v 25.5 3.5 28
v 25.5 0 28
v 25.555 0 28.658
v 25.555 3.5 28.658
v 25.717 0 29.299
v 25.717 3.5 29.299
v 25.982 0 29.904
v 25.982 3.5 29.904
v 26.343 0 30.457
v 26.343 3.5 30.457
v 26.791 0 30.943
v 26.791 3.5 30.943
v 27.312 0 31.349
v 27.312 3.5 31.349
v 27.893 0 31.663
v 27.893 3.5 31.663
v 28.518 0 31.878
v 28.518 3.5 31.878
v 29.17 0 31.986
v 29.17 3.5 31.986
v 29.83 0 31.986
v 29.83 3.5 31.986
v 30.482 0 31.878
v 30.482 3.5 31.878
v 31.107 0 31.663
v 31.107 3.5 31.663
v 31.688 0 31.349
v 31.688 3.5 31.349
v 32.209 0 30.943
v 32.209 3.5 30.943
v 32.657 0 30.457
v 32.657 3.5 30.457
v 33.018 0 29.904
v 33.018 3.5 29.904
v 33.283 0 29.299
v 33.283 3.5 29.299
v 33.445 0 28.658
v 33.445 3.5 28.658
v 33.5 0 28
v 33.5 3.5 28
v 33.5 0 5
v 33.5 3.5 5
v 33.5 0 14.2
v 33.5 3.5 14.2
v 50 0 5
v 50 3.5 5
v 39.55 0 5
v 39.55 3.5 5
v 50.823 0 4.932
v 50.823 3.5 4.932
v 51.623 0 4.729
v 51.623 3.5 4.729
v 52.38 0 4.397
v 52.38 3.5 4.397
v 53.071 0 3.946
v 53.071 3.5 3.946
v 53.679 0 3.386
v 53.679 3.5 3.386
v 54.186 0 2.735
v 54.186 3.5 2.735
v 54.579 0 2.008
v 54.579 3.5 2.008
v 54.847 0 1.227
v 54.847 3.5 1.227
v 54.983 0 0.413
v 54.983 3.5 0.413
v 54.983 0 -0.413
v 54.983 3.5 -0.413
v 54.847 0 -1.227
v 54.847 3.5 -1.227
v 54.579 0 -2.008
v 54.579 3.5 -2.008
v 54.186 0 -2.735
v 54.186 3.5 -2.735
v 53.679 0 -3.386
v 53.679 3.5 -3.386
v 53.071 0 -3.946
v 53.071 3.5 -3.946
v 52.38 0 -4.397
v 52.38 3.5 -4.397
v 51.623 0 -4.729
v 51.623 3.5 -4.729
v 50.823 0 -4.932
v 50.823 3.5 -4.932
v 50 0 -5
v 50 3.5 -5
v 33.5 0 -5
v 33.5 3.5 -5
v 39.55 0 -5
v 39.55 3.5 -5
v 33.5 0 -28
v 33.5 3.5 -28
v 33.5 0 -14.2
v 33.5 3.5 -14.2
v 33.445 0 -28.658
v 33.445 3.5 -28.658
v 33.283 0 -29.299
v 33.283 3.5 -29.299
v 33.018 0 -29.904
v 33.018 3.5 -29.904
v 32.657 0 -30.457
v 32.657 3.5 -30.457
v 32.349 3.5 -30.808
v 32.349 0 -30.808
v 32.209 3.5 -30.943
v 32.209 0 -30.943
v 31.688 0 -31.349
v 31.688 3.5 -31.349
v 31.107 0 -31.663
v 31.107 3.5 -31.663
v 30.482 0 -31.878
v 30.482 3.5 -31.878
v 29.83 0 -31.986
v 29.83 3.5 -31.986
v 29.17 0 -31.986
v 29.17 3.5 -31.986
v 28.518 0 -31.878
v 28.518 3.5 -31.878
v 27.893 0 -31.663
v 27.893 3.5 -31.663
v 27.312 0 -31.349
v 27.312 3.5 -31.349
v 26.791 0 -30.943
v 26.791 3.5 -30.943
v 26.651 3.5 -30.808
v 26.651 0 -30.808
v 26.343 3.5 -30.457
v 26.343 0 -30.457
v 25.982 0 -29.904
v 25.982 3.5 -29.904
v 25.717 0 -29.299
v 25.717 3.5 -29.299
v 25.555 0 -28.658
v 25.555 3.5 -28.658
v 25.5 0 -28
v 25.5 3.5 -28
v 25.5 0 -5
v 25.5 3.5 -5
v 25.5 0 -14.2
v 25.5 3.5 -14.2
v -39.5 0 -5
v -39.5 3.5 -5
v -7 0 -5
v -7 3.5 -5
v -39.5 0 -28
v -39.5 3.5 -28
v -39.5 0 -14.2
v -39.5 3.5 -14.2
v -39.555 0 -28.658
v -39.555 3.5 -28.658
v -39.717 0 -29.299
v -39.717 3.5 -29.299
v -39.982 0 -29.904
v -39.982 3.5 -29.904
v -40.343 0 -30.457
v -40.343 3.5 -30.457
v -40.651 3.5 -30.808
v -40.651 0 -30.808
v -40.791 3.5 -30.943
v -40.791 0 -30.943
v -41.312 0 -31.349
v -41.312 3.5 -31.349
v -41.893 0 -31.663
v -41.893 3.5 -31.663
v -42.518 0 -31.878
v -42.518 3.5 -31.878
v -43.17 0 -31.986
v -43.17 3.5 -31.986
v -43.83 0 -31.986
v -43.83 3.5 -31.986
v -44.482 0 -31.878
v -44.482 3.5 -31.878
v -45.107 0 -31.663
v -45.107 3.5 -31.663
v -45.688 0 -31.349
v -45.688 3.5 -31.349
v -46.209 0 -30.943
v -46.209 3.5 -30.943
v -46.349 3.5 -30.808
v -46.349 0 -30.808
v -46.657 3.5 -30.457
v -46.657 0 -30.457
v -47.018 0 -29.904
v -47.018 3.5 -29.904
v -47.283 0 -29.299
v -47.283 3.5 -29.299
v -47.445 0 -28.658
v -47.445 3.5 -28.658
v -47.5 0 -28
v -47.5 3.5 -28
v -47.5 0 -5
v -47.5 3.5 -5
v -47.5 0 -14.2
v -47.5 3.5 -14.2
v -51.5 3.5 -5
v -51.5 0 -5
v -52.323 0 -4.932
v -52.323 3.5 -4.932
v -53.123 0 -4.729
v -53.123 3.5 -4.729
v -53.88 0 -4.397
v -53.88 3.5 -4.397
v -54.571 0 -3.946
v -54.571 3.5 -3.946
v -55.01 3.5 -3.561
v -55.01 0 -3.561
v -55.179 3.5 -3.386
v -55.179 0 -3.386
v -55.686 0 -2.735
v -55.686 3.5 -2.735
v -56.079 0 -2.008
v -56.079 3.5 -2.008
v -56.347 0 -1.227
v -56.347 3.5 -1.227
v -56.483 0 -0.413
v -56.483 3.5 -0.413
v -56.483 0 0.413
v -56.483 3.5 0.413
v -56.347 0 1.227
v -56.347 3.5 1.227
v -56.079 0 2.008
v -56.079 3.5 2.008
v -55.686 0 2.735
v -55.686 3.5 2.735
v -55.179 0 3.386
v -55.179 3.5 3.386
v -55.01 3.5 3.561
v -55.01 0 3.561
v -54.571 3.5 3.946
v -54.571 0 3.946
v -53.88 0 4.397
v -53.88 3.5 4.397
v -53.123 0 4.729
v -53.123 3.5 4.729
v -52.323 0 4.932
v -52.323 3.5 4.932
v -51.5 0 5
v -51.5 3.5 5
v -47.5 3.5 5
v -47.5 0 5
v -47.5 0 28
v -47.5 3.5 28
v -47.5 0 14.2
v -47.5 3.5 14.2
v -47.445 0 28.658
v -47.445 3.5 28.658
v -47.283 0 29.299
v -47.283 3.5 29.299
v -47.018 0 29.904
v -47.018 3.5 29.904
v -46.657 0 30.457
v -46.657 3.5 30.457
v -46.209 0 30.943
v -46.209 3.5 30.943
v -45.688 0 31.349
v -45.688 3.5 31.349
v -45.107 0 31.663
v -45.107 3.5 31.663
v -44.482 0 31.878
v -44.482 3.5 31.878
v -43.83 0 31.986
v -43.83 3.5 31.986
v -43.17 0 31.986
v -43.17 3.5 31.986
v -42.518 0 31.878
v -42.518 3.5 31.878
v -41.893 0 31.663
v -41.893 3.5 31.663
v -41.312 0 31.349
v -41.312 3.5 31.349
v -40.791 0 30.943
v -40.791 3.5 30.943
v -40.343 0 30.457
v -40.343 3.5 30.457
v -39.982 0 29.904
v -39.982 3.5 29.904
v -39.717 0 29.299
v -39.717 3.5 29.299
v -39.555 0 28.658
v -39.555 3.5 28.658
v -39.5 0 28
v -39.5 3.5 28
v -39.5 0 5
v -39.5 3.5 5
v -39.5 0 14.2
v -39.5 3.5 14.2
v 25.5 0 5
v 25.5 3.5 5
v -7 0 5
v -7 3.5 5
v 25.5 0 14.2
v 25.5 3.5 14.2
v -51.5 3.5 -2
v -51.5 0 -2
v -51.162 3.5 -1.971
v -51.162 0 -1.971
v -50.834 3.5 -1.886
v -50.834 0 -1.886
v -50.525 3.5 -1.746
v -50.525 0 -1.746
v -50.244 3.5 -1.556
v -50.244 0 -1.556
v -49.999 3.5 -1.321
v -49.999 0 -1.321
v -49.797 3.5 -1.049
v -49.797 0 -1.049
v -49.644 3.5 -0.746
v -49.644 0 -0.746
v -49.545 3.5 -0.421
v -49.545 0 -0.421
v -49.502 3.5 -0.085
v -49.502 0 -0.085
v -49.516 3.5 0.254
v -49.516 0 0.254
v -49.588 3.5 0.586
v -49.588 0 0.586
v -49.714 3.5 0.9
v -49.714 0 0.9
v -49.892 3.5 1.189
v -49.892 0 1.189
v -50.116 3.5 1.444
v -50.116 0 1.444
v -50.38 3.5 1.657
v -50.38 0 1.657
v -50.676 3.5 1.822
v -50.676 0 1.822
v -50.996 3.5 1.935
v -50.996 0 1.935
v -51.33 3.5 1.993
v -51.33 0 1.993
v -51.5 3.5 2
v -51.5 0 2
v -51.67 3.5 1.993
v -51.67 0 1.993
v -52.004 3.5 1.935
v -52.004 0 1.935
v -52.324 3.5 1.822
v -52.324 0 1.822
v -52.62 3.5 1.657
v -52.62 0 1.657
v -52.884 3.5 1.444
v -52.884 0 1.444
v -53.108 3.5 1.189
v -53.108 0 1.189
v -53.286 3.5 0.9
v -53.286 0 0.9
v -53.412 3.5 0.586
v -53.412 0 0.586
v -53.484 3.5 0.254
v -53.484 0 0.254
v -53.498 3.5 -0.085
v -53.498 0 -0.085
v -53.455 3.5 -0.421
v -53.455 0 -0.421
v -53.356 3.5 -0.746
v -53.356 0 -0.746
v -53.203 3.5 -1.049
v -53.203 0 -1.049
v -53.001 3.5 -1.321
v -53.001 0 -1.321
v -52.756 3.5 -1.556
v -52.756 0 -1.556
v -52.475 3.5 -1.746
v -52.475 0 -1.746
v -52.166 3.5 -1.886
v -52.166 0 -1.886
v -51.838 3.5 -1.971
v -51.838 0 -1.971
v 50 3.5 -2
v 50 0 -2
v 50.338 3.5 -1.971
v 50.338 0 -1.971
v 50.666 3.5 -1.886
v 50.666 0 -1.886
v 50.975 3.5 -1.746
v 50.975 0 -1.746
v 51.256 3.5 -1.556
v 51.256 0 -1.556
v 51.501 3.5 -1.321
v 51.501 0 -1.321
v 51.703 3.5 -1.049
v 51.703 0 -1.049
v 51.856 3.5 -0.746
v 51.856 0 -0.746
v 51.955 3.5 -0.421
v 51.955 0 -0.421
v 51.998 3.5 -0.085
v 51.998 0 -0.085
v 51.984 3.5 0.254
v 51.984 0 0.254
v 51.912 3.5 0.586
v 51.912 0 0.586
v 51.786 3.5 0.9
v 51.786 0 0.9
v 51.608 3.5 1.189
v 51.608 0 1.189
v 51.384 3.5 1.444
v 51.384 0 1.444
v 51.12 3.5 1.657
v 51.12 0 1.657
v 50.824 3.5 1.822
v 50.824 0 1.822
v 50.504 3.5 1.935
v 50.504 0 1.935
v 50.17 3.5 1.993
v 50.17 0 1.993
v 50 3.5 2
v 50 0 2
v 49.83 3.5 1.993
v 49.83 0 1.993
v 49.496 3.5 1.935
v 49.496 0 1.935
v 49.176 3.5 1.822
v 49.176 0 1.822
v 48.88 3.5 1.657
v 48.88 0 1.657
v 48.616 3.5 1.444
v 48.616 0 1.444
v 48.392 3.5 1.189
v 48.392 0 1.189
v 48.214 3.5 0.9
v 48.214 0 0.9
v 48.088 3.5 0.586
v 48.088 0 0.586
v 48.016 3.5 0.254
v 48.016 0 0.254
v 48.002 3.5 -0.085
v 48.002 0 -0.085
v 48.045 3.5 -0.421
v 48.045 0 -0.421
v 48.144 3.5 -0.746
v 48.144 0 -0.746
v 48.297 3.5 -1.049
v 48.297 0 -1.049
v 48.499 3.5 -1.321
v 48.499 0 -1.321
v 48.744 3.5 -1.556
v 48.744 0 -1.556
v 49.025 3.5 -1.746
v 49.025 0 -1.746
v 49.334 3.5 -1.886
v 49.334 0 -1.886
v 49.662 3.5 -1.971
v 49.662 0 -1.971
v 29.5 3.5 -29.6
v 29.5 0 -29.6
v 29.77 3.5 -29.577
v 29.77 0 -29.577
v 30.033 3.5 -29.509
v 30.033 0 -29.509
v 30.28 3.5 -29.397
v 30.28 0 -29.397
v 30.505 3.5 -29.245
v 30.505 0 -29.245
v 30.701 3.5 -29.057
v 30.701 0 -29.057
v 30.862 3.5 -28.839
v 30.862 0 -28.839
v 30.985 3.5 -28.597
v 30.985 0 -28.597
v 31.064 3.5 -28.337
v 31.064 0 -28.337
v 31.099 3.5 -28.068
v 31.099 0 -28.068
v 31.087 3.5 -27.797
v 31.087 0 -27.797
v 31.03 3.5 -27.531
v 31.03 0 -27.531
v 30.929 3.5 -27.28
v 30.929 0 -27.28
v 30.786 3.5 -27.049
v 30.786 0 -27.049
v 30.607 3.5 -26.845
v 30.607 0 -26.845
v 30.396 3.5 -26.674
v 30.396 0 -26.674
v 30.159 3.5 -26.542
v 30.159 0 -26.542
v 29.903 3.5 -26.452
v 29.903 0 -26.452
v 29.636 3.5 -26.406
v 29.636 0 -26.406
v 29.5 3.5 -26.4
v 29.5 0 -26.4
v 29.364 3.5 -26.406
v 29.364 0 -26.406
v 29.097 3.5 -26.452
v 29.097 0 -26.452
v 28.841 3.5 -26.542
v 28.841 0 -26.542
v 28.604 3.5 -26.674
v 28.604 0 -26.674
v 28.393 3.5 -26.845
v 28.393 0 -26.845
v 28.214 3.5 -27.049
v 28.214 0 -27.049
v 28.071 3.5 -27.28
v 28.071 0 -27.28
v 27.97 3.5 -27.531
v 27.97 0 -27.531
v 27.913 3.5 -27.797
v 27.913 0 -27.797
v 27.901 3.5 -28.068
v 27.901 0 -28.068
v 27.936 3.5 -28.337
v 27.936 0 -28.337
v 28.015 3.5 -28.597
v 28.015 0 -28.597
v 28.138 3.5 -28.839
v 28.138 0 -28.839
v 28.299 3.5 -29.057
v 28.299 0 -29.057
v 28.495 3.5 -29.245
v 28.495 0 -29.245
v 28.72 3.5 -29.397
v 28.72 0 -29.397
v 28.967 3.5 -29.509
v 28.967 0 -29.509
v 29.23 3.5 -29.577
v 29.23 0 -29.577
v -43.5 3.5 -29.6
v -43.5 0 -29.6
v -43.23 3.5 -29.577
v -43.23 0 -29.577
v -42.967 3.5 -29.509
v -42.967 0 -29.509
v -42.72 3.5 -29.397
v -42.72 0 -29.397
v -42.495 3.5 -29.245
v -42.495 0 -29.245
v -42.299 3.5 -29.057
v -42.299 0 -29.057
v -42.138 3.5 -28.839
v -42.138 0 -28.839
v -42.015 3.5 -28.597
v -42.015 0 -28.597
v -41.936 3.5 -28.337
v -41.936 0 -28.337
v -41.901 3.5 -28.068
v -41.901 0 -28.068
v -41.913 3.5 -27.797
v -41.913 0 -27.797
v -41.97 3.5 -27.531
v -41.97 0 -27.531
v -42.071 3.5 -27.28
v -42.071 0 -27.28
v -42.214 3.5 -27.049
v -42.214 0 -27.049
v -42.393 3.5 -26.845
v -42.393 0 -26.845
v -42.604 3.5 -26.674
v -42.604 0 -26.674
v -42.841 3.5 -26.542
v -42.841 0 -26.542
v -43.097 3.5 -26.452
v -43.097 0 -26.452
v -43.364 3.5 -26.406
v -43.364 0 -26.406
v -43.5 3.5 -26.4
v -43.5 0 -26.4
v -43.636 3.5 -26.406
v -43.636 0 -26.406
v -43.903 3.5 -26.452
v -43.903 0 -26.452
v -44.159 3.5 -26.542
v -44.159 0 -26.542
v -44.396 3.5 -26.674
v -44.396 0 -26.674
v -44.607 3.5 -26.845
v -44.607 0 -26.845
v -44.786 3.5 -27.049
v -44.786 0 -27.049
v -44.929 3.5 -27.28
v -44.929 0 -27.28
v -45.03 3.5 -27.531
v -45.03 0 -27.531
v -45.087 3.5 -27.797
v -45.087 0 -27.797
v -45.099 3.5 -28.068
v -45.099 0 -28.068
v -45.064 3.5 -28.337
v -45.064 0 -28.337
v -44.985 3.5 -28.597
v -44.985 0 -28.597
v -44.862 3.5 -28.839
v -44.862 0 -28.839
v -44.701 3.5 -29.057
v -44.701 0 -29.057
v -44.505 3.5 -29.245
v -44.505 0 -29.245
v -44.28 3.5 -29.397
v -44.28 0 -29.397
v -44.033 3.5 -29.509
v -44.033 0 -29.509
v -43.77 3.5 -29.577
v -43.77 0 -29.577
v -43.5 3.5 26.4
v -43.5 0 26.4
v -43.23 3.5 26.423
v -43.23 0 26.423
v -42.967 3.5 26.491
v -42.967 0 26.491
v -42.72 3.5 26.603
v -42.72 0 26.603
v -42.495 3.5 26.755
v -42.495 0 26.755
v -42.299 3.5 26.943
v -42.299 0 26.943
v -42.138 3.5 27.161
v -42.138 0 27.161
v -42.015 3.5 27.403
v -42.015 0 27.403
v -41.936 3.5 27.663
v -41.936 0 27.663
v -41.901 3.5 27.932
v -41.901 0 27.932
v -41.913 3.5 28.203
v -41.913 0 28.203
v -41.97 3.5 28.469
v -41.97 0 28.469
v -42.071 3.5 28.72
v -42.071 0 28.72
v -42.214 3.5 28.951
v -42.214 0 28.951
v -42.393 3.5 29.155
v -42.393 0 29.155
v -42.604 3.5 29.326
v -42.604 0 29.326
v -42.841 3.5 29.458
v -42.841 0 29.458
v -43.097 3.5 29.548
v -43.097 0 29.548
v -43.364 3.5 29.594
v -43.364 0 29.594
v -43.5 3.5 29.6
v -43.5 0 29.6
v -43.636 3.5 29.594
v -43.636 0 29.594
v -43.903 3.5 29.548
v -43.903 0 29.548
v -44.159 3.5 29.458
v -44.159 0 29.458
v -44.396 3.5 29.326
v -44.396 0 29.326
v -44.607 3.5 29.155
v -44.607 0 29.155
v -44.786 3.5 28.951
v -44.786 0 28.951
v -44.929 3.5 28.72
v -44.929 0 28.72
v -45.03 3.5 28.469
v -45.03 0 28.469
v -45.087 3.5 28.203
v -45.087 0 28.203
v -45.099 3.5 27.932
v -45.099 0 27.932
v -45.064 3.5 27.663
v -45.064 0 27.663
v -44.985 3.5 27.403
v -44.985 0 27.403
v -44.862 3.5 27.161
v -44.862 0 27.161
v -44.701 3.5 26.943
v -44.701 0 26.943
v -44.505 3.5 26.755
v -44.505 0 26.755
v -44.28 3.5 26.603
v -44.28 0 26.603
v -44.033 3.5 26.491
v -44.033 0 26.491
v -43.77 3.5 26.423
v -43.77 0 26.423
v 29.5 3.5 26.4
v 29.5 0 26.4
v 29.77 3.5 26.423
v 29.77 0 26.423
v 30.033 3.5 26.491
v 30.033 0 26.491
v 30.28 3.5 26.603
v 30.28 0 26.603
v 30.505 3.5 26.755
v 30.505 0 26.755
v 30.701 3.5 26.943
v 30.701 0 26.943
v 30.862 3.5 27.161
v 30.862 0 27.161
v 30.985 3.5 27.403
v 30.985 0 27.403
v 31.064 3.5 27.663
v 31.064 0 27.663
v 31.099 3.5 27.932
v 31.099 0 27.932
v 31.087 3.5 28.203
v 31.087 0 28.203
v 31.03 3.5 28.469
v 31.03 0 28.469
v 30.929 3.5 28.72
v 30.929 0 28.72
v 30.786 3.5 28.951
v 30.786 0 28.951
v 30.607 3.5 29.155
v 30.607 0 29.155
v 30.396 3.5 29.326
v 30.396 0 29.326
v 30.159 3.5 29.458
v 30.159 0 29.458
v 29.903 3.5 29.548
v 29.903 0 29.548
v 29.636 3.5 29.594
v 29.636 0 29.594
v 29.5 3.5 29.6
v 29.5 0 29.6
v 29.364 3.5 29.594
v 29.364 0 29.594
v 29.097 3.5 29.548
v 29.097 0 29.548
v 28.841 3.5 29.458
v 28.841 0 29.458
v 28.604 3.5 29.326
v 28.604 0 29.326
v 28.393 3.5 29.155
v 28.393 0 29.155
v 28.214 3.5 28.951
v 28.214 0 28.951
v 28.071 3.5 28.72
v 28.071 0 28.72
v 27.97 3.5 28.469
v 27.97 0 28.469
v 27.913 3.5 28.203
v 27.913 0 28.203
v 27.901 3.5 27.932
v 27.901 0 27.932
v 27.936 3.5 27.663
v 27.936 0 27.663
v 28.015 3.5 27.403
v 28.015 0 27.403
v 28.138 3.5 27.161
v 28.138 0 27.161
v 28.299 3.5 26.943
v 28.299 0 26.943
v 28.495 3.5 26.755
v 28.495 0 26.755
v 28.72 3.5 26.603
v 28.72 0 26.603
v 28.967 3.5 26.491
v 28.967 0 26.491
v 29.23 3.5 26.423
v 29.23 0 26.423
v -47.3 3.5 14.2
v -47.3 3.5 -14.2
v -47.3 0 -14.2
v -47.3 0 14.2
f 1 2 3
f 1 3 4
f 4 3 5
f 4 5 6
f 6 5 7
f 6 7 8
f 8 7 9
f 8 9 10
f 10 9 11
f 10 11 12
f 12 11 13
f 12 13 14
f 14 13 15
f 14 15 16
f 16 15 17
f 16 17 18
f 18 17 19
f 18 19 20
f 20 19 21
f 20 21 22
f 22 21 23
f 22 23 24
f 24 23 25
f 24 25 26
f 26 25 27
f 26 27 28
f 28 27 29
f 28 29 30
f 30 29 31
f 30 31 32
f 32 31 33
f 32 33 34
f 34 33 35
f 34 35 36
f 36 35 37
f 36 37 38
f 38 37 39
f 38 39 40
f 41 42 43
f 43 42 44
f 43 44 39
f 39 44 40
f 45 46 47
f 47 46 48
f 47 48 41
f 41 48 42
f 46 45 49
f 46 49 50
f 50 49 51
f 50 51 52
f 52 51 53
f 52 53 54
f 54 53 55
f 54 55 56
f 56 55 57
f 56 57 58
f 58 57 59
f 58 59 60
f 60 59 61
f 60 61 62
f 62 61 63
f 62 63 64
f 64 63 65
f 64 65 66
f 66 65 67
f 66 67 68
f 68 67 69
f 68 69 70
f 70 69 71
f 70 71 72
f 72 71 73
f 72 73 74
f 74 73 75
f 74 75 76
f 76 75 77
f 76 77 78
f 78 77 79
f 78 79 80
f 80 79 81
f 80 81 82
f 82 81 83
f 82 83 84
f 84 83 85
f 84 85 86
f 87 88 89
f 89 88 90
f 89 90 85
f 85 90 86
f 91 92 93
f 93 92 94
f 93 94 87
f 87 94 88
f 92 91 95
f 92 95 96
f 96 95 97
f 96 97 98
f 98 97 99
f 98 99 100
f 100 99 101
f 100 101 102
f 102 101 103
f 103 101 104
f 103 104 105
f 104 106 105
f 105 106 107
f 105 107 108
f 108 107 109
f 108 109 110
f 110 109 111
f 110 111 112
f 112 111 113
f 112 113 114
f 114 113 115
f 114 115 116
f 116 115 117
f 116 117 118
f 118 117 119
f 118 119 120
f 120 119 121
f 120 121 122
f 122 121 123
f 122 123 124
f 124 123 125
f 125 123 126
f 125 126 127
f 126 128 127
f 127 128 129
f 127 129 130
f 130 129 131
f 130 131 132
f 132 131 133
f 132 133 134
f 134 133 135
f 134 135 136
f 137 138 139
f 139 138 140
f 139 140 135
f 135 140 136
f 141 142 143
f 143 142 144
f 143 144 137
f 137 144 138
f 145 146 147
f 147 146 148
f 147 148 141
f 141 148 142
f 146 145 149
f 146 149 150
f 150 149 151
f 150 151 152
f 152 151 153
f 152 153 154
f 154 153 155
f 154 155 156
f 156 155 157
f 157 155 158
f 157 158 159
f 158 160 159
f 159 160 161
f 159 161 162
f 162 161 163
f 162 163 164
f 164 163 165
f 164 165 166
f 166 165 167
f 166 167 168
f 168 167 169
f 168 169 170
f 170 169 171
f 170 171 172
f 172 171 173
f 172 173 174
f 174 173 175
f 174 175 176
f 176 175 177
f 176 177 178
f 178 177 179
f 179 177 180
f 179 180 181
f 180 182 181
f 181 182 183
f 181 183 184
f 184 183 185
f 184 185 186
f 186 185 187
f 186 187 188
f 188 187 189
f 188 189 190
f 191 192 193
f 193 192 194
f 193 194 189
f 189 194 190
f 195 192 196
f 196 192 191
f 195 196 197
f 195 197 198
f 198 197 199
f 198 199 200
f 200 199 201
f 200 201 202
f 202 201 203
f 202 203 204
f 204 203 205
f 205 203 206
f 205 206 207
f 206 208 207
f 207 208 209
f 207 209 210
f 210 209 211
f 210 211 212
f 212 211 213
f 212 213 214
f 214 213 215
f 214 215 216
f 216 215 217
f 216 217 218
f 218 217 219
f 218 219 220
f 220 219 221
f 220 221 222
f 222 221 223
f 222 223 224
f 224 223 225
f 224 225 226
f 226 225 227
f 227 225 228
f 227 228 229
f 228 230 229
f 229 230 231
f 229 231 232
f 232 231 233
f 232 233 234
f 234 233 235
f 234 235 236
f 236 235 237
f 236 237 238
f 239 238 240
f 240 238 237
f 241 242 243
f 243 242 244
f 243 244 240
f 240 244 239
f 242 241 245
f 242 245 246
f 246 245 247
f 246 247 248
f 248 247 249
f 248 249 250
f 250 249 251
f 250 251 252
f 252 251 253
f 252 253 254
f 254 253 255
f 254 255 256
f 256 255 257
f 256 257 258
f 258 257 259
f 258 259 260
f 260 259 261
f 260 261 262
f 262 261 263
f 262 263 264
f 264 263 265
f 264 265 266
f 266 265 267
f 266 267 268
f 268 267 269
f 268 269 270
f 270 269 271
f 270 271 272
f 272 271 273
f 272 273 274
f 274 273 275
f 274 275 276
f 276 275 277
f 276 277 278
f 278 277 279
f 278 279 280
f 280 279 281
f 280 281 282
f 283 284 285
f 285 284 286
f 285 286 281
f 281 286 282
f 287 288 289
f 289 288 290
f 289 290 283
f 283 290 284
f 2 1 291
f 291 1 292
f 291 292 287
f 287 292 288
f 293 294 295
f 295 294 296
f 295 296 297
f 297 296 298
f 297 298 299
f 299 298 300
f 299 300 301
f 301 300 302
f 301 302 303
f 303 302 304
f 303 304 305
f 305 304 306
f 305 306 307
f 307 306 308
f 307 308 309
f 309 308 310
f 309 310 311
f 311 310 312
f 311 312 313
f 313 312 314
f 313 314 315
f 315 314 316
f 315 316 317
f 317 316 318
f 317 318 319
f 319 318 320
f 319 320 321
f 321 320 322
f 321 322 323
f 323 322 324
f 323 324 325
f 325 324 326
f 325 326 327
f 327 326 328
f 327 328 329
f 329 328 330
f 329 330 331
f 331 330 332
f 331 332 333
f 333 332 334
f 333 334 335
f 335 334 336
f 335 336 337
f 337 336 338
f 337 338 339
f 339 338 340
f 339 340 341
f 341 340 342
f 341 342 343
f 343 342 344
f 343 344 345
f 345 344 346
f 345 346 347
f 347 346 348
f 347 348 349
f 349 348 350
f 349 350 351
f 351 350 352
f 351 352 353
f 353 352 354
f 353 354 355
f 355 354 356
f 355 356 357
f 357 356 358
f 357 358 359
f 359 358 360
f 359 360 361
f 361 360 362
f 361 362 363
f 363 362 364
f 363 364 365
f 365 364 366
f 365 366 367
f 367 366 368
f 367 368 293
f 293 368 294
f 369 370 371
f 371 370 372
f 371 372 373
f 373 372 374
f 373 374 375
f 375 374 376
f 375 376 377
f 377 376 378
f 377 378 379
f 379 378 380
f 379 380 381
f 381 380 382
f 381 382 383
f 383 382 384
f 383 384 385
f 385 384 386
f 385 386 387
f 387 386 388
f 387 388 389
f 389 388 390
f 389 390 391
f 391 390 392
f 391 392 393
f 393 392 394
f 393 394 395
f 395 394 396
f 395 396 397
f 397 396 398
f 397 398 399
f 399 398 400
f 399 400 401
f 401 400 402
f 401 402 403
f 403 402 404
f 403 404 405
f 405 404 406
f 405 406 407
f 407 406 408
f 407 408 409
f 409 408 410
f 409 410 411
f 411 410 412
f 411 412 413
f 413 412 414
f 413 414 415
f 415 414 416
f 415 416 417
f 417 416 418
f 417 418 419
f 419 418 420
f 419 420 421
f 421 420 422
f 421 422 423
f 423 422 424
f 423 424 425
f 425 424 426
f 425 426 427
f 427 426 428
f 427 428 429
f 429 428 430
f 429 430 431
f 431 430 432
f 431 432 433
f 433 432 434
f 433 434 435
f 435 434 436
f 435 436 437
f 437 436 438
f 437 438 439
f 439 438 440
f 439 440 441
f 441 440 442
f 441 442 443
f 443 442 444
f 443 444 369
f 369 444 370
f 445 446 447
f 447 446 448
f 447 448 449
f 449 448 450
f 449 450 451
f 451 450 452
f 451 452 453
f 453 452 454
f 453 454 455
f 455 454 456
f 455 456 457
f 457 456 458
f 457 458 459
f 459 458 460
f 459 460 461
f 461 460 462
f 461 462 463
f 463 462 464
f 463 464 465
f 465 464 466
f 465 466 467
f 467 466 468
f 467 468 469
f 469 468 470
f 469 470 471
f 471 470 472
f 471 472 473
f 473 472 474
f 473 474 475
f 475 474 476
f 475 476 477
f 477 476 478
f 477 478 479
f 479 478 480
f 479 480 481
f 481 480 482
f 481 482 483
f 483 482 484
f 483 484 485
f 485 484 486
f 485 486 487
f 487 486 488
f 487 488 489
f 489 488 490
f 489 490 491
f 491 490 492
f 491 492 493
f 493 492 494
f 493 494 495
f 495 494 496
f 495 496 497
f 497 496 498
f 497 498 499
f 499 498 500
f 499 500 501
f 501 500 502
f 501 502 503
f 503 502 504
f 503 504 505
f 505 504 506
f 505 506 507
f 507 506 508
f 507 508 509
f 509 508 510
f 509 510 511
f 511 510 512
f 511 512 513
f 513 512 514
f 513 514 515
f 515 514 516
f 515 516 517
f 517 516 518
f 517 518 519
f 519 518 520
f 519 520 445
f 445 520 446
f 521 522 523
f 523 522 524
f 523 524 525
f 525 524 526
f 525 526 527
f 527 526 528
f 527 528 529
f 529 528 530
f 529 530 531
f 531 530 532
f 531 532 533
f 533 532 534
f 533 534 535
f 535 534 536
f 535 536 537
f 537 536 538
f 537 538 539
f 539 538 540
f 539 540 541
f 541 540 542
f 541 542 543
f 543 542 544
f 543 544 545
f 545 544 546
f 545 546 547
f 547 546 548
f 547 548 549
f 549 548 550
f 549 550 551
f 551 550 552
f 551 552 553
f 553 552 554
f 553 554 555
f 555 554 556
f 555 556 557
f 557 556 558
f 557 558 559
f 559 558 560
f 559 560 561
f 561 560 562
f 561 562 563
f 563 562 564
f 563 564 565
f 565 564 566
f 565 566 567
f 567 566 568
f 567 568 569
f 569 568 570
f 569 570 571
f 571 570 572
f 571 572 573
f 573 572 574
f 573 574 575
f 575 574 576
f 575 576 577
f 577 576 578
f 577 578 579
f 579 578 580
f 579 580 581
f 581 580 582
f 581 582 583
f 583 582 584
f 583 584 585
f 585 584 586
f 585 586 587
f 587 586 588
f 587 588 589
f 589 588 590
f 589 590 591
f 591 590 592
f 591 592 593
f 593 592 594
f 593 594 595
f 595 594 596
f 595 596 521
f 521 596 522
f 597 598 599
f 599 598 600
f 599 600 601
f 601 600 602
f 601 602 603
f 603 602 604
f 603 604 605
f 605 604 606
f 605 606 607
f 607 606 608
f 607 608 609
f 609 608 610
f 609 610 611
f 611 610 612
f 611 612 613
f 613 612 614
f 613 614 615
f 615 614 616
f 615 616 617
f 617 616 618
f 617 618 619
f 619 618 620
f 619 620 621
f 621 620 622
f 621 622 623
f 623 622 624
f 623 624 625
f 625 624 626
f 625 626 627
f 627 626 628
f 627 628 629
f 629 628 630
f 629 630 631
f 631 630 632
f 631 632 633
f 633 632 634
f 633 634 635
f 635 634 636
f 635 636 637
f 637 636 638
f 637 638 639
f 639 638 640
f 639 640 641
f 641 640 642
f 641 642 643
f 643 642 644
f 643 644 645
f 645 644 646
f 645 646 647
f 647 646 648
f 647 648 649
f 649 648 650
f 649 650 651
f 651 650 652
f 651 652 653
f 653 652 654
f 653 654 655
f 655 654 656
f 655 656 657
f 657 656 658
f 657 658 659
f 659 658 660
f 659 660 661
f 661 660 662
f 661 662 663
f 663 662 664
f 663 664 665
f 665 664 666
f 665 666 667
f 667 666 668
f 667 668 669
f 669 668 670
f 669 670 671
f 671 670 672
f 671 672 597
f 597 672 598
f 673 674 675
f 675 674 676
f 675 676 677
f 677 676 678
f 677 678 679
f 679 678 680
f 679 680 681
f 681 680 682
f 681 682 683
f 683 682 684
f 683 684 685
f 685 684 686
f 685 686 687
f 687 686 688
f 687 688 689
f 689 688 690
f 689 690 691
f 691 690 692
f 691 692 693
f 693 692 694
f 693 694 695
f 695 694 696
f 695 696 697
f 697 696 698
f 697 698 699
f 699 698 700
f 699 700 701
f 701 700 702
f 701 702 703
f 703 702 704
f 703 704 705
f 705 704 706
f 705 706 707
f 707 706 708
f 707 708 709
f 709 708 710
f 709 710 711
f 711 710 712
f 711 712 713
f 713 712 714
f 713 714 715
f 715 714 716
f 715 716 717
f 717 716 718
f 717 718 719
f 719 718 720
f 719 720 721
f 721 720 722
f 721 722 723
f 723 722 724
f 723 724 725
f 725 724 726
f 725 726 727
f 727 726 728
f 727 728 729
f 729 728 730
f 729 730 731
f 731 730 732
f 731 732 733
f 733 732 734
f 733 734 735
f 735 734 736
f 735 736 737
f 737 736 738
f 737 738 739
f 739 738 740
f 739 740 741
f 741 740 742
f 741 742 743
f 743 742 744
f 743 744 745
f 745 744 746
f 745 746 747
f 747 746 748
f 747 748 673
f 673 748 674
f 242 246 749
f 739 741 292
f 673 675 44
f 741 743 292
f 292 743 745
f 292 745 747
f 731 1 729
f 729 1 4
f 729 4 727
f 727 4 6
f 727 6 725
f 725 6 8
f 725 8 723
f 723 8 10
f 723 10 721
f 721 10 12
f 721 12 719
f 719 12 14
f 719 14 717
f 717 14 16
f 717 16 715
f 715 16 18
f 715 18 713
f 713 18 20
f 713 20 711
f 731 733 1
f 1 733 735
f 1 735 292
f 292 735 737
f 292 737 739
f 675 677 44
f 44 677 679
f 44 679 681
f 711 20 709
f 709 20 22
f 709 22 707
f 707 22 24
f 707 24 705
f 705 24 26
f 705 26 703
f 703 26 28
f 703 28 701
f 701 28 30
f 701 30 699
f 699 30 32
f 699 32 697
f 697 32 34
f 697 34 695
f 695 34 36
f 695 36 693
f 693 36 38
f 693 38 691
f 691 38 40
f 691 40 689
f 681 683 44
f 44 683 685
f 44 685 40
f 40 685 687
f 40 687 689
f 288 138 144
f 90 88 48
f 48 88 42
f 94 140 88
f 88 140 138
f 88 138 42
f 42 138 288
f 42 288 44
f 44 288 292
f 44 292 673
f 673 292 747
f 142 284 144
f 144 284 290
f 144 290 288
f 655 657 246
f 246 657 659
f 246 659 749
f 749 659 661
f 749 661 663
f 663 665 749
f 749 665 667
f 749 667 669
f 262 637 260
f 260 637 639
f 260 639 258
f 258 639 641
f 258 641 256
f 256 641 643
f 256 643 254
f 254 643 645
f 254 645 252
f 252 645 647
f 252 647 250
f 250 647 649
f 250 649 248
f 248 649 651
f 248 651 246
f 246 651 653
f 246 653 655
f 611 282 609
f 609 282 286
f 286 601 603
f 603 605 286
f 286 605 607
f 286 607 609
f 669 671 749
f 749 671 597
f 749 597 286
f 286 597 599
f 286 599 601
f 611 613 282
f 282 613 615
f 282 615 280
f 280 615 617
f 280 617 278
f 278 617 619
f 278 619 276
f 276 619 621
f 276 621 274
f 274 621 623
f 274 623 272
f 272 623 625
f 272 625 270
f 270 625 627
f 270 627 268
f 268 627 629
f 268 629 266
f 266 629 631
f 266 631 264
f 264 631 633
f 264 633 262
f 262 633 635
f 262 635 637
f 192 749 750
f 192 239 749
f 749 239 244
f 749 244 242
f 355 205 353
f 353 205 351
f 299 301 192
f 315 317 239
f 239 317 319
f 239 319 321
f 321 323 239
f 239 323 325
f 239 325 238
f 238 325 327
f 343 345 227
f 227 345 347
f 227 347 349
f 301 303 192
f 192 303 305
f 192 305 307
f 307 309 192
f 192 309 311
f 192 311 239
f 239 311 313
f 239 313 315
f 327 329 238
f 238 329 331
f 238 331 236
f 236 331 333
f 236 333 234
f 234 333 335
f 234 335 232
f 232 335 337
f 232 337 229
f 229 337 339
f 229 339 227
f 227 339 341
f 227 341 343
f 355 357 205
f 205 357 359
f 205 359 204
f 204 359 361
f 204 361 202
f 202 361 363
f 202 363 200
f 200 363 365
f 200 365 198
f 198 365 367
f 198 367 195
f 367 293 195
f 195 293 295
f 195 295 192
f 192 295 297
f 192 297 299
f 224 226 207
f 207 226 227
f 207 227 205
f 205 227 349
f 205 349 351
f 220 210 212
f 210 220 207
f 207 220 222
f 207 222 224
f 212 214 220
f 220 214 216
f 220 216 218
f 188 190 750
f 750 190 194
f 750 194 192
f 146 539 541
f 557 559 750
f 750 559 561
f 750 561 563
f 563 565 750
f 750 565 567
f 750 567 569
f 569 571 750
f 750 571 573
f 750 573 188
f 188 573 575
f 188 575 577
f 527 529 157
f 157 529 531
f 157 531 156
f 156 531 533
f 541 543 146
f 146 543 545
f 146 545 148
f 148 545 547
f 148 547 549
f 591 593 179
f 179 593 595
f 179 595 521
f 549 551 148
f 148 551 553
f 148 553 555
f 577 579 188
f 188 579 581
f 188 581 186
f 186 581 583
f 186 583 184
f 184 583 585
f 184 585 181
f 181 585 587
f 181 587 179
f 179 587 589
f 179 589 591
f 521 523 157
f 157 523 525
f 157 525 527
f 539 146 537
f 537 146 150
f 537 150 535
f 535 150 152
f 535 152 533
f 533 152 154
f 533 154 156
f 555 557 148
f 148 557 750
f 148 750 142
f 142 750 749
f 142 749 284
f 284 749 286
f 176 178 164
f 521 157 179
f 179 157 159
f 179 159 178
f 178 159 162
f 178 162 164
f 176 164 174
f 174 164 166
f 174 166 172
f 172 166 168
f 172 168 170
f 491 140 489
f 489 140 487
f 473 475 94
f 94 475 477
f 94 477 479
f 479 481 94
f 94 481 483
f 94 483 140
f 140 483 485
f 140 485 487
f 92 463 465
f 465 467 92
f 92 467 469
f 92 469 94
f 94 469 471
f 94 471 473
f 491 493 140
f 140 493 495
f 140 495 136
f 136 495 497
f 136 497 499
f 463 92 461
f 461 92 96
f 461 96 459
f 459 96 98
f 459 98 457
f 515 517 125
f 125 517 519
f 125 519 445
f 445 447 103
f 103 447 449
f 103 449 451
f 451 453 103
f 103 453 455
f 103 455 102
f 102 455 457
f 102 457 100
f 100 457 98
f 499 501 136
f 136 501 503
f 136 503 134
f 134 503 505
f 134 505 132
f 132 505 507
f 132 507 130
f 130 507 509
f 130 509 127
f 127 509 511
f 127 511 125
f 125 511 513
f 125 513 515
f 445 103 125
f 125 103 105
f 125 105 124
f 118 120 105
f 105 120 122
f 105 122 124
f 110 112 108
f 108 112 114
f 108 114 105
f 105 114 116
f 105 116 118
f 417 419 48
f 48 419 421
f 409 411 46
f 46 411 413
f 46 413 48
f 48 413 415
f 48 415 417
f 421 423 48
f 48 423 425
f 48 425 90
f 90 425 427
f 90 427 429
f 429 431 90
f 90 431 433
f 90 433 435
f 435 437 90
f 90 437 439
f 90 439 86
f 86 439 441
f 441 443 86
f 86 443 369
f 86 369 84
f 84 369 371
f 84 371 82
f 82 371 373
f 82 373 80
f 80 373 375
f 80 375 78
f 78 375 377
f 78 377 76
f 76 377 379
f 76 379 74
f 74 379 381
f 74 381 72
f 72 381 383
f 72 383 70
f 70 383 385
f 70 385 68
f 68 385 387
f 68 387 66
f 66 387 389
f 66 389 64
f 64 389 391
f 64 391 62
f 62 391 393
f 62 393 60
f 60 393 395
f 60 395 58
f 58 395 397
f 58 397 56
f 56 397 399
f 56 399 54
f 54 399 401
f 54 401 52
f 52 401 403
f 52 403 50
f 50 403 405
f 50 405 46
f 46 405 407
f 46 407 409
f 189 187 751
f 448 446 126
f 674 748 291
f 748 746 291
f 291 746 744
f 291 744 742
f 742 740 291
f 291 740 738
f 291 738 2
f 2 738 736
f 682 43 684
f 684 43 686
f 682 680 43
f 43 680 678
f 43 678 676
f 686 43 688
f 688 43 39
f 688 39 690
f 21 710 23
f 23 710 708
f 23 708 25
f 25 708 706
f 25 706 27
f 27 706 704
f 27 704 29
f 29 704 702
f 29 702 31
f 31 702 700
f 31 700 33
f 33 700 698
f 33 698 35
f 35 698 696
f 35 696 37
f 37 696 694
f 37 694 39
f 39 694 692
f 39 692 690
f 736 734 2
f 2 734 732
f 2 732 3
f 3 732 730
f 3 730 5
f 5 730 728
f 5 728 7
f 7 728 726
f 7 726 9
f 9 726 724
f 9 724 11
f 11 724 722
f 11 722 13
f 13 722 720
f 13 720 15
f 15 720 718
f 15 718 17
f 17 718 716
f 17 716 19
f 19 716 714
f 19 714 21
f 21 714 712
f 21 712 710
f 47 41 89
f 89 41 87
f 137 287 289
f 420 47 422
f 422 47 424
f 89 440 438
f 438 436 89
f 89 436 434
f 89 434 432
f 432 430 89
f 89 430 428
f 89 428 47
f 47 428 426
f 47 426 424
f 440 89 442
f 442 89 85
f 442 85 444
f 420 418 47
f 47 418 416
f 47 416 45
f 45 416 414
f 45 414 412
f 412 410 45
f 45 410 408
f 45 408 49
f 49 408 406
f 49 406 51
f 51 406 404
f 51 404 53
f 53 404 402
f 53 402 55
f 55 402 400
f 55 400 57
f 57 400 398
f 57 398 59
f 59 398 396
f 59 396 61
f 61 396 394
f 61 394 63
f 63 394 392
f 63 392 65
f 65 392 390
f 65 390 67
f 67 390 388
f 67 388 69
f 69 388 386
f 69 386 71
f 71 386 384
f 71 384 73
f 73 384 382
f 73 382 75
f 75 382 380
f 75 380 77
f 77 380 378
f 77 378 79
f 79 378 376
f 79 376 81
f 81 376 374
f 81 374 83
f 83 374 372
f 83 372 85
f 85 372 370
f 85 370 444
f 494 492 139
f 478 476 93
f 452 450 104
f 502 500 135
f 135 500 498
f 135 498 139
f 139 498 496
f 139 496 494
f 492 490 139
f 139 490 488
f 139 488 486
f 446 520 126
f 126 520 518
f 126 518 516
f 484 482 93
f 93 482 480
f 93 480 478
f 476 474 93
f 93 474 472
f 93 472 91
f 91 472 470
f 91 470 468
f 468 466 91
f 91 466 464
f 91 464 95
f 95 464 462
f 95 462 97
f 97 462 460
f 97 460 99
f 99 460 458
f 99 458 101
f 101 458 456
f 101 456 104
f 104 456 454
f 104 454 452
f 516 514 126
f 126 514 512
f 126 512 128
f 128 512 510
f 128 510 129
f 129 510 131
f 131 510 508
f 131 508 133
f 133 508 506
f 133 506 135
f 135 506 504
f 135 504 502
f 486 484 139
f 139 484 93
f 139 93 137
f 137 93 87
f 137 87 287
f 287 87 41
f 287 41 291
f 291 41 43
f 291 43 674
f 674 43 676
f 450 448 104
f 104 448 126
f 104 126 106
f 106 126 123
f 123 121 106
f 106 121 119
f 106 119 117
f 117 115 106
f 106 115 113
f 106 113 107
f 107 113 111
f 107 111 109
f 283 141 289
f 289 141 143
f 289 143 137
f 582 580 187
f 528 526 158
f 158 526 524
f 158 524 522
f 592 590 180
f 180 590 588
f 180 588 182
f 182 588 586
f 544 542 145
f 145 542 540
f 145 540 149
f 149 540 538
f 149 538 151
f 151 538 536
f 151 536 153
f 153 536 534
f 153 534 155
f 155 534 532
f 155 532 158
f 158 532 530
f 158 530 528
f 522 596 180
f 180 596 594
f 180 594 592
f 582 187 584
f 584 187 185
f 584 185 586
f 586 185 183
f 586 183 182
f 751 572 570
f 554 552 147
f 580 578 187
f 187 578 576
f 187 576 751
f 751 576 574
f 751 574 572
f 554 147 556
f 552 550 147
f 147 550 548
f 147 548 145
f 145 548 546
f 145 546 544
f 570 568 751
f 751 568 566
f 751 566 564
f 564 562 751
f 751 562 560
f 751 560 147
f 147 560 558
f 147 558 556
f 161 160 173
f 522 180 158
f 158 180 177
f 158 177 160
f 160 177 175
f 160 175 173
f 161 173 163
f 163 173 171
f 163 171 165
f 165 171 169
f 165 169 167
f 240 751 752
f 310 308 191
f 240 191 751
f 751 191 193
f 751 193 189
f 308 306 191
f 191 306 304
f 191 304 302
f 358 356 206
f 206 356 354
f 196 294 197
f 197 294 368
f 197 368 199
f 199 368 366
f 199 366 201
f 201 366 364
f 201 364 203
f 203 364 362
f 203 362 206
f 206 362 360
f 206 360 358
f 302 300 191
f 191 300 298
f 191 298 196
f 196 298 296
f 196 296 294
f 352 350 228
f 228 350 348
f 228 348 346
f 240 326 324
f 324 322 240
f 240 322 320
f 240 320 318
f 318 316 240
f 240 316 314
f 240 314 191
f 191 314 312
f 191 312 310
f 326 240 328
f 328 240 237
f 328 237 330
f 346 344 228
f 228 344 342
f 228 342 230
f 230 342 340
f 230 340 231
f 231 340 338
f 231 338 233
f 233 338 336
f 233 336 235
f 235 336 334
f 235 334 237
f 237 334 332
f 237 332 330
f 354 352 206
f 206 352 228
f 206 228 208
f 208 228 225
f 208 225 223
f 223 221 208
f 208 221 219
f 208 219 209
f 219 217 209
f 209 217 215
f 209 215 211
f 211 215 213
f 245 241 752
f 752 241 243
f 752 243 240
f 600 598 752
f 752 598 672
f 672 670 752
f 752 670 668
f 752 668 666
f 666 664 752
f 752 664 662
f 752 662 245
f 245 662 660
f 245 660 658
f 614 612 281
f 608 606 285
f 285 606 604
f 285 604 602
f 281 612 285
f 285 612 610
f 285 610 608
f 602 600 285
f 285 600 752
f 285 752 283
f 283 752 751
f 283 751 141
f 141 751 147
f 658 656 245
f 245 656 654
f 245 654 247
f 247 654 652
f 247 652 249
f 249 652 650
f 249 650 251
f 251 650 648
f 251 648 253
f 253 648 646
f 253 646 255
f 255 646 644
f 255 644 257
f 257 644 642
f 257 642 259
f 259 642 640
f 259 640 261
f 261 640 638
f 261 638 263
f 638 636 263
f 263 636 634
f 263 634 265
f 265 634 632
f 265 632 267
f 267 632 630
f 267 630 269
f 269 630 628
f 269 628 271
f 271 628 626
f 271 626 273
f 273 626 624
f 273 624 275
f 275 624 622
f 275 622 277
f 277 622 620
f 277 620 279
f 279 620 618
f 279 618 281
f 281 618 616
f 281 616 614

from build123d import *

# Parameters (mm, degrees)
SKETCH1_R           = 2
SKETCH1_R_2         = 1.6
BOSS_EXTRUDE1_DEPTH = 3.5


with BuildPart() as part:
    # Sketch1 → Boss-Extrude1 (new body)
    with BuildSketch(Plane(origin=(0, 0, 0), x_dir=(1, 0, 0), z_dir=(0, 1, 0))):
        with BuildLine():
            Line((33.5, 28), (33.5, 5))
            Line((33.5, 5), (50, 5))
            ThreePointArc((50, 5), (55, 0), (50, -5))
            Line((50, -5), (33.5, -5))
            Line((33.5, -5), (33.5, -28))
            ThreePointArc((33.5, -28), (29.5, -32), (25.5, -28))
            Line((25.5, -28), (25.5, -5))
            Line((25.5, -5), (-39.5, -5))
            Line((-39.5, -5), (-39.5, -28))
            ThreePointArc((-39.5, -28), (-43.5, -32), (-47.5, -28))
            Line((-47.5, -28), (-47.5, -5))
            Line((-47.5, -5), (-51.5, -5))
            ThreePointArc((-51.5, -5), (-56.5, 0), (-51.5, 5))
            Line((-51.5, 5), (-47.5, 5))
            Line((-47.5, 5), (-47.5, 28))
            ThreePointArc((-47.5, 28), (-43.5, 32), (-39.5, 28))
            Line((-39.5, 28), (-39.5, 5))
            Line((-39.5, 5), (25.5, 5))
            Line((25.5, 5), (25.5, 28))
            ThreePointArc((25.5, 28), (29.5, 32), (33.5, 28))
        make_face()
        with Locations((50, 0)):
            Circle(SKETCH1_R, mode=Mode.SUBTRACT)
        with Locations((-51.5, 0)):
            Circle(SKETCH1_R, mode=Mode.SUBTRACT)
        with Locations((29.5, 28)):
            Circle(SKETCH1_R_2, mode=Mode.SUBTRACT)
        with Locations((-43.5, 28)):
            Circle(SKETCH1_R_2, mode=Mode.SUBTRACT)
        with Locations((-43.5, -28)):
            Circle(SKETCH1_R_2, mode=Mode.SUBTRACT)
        with Locations((29.5, -28)):
            Circle(SKETCH1_R_2, mode=Mode.SUBTRACT)
    extrude(amount=BOSS_EXTRUDE1_DEPTH)


solid = part.part
